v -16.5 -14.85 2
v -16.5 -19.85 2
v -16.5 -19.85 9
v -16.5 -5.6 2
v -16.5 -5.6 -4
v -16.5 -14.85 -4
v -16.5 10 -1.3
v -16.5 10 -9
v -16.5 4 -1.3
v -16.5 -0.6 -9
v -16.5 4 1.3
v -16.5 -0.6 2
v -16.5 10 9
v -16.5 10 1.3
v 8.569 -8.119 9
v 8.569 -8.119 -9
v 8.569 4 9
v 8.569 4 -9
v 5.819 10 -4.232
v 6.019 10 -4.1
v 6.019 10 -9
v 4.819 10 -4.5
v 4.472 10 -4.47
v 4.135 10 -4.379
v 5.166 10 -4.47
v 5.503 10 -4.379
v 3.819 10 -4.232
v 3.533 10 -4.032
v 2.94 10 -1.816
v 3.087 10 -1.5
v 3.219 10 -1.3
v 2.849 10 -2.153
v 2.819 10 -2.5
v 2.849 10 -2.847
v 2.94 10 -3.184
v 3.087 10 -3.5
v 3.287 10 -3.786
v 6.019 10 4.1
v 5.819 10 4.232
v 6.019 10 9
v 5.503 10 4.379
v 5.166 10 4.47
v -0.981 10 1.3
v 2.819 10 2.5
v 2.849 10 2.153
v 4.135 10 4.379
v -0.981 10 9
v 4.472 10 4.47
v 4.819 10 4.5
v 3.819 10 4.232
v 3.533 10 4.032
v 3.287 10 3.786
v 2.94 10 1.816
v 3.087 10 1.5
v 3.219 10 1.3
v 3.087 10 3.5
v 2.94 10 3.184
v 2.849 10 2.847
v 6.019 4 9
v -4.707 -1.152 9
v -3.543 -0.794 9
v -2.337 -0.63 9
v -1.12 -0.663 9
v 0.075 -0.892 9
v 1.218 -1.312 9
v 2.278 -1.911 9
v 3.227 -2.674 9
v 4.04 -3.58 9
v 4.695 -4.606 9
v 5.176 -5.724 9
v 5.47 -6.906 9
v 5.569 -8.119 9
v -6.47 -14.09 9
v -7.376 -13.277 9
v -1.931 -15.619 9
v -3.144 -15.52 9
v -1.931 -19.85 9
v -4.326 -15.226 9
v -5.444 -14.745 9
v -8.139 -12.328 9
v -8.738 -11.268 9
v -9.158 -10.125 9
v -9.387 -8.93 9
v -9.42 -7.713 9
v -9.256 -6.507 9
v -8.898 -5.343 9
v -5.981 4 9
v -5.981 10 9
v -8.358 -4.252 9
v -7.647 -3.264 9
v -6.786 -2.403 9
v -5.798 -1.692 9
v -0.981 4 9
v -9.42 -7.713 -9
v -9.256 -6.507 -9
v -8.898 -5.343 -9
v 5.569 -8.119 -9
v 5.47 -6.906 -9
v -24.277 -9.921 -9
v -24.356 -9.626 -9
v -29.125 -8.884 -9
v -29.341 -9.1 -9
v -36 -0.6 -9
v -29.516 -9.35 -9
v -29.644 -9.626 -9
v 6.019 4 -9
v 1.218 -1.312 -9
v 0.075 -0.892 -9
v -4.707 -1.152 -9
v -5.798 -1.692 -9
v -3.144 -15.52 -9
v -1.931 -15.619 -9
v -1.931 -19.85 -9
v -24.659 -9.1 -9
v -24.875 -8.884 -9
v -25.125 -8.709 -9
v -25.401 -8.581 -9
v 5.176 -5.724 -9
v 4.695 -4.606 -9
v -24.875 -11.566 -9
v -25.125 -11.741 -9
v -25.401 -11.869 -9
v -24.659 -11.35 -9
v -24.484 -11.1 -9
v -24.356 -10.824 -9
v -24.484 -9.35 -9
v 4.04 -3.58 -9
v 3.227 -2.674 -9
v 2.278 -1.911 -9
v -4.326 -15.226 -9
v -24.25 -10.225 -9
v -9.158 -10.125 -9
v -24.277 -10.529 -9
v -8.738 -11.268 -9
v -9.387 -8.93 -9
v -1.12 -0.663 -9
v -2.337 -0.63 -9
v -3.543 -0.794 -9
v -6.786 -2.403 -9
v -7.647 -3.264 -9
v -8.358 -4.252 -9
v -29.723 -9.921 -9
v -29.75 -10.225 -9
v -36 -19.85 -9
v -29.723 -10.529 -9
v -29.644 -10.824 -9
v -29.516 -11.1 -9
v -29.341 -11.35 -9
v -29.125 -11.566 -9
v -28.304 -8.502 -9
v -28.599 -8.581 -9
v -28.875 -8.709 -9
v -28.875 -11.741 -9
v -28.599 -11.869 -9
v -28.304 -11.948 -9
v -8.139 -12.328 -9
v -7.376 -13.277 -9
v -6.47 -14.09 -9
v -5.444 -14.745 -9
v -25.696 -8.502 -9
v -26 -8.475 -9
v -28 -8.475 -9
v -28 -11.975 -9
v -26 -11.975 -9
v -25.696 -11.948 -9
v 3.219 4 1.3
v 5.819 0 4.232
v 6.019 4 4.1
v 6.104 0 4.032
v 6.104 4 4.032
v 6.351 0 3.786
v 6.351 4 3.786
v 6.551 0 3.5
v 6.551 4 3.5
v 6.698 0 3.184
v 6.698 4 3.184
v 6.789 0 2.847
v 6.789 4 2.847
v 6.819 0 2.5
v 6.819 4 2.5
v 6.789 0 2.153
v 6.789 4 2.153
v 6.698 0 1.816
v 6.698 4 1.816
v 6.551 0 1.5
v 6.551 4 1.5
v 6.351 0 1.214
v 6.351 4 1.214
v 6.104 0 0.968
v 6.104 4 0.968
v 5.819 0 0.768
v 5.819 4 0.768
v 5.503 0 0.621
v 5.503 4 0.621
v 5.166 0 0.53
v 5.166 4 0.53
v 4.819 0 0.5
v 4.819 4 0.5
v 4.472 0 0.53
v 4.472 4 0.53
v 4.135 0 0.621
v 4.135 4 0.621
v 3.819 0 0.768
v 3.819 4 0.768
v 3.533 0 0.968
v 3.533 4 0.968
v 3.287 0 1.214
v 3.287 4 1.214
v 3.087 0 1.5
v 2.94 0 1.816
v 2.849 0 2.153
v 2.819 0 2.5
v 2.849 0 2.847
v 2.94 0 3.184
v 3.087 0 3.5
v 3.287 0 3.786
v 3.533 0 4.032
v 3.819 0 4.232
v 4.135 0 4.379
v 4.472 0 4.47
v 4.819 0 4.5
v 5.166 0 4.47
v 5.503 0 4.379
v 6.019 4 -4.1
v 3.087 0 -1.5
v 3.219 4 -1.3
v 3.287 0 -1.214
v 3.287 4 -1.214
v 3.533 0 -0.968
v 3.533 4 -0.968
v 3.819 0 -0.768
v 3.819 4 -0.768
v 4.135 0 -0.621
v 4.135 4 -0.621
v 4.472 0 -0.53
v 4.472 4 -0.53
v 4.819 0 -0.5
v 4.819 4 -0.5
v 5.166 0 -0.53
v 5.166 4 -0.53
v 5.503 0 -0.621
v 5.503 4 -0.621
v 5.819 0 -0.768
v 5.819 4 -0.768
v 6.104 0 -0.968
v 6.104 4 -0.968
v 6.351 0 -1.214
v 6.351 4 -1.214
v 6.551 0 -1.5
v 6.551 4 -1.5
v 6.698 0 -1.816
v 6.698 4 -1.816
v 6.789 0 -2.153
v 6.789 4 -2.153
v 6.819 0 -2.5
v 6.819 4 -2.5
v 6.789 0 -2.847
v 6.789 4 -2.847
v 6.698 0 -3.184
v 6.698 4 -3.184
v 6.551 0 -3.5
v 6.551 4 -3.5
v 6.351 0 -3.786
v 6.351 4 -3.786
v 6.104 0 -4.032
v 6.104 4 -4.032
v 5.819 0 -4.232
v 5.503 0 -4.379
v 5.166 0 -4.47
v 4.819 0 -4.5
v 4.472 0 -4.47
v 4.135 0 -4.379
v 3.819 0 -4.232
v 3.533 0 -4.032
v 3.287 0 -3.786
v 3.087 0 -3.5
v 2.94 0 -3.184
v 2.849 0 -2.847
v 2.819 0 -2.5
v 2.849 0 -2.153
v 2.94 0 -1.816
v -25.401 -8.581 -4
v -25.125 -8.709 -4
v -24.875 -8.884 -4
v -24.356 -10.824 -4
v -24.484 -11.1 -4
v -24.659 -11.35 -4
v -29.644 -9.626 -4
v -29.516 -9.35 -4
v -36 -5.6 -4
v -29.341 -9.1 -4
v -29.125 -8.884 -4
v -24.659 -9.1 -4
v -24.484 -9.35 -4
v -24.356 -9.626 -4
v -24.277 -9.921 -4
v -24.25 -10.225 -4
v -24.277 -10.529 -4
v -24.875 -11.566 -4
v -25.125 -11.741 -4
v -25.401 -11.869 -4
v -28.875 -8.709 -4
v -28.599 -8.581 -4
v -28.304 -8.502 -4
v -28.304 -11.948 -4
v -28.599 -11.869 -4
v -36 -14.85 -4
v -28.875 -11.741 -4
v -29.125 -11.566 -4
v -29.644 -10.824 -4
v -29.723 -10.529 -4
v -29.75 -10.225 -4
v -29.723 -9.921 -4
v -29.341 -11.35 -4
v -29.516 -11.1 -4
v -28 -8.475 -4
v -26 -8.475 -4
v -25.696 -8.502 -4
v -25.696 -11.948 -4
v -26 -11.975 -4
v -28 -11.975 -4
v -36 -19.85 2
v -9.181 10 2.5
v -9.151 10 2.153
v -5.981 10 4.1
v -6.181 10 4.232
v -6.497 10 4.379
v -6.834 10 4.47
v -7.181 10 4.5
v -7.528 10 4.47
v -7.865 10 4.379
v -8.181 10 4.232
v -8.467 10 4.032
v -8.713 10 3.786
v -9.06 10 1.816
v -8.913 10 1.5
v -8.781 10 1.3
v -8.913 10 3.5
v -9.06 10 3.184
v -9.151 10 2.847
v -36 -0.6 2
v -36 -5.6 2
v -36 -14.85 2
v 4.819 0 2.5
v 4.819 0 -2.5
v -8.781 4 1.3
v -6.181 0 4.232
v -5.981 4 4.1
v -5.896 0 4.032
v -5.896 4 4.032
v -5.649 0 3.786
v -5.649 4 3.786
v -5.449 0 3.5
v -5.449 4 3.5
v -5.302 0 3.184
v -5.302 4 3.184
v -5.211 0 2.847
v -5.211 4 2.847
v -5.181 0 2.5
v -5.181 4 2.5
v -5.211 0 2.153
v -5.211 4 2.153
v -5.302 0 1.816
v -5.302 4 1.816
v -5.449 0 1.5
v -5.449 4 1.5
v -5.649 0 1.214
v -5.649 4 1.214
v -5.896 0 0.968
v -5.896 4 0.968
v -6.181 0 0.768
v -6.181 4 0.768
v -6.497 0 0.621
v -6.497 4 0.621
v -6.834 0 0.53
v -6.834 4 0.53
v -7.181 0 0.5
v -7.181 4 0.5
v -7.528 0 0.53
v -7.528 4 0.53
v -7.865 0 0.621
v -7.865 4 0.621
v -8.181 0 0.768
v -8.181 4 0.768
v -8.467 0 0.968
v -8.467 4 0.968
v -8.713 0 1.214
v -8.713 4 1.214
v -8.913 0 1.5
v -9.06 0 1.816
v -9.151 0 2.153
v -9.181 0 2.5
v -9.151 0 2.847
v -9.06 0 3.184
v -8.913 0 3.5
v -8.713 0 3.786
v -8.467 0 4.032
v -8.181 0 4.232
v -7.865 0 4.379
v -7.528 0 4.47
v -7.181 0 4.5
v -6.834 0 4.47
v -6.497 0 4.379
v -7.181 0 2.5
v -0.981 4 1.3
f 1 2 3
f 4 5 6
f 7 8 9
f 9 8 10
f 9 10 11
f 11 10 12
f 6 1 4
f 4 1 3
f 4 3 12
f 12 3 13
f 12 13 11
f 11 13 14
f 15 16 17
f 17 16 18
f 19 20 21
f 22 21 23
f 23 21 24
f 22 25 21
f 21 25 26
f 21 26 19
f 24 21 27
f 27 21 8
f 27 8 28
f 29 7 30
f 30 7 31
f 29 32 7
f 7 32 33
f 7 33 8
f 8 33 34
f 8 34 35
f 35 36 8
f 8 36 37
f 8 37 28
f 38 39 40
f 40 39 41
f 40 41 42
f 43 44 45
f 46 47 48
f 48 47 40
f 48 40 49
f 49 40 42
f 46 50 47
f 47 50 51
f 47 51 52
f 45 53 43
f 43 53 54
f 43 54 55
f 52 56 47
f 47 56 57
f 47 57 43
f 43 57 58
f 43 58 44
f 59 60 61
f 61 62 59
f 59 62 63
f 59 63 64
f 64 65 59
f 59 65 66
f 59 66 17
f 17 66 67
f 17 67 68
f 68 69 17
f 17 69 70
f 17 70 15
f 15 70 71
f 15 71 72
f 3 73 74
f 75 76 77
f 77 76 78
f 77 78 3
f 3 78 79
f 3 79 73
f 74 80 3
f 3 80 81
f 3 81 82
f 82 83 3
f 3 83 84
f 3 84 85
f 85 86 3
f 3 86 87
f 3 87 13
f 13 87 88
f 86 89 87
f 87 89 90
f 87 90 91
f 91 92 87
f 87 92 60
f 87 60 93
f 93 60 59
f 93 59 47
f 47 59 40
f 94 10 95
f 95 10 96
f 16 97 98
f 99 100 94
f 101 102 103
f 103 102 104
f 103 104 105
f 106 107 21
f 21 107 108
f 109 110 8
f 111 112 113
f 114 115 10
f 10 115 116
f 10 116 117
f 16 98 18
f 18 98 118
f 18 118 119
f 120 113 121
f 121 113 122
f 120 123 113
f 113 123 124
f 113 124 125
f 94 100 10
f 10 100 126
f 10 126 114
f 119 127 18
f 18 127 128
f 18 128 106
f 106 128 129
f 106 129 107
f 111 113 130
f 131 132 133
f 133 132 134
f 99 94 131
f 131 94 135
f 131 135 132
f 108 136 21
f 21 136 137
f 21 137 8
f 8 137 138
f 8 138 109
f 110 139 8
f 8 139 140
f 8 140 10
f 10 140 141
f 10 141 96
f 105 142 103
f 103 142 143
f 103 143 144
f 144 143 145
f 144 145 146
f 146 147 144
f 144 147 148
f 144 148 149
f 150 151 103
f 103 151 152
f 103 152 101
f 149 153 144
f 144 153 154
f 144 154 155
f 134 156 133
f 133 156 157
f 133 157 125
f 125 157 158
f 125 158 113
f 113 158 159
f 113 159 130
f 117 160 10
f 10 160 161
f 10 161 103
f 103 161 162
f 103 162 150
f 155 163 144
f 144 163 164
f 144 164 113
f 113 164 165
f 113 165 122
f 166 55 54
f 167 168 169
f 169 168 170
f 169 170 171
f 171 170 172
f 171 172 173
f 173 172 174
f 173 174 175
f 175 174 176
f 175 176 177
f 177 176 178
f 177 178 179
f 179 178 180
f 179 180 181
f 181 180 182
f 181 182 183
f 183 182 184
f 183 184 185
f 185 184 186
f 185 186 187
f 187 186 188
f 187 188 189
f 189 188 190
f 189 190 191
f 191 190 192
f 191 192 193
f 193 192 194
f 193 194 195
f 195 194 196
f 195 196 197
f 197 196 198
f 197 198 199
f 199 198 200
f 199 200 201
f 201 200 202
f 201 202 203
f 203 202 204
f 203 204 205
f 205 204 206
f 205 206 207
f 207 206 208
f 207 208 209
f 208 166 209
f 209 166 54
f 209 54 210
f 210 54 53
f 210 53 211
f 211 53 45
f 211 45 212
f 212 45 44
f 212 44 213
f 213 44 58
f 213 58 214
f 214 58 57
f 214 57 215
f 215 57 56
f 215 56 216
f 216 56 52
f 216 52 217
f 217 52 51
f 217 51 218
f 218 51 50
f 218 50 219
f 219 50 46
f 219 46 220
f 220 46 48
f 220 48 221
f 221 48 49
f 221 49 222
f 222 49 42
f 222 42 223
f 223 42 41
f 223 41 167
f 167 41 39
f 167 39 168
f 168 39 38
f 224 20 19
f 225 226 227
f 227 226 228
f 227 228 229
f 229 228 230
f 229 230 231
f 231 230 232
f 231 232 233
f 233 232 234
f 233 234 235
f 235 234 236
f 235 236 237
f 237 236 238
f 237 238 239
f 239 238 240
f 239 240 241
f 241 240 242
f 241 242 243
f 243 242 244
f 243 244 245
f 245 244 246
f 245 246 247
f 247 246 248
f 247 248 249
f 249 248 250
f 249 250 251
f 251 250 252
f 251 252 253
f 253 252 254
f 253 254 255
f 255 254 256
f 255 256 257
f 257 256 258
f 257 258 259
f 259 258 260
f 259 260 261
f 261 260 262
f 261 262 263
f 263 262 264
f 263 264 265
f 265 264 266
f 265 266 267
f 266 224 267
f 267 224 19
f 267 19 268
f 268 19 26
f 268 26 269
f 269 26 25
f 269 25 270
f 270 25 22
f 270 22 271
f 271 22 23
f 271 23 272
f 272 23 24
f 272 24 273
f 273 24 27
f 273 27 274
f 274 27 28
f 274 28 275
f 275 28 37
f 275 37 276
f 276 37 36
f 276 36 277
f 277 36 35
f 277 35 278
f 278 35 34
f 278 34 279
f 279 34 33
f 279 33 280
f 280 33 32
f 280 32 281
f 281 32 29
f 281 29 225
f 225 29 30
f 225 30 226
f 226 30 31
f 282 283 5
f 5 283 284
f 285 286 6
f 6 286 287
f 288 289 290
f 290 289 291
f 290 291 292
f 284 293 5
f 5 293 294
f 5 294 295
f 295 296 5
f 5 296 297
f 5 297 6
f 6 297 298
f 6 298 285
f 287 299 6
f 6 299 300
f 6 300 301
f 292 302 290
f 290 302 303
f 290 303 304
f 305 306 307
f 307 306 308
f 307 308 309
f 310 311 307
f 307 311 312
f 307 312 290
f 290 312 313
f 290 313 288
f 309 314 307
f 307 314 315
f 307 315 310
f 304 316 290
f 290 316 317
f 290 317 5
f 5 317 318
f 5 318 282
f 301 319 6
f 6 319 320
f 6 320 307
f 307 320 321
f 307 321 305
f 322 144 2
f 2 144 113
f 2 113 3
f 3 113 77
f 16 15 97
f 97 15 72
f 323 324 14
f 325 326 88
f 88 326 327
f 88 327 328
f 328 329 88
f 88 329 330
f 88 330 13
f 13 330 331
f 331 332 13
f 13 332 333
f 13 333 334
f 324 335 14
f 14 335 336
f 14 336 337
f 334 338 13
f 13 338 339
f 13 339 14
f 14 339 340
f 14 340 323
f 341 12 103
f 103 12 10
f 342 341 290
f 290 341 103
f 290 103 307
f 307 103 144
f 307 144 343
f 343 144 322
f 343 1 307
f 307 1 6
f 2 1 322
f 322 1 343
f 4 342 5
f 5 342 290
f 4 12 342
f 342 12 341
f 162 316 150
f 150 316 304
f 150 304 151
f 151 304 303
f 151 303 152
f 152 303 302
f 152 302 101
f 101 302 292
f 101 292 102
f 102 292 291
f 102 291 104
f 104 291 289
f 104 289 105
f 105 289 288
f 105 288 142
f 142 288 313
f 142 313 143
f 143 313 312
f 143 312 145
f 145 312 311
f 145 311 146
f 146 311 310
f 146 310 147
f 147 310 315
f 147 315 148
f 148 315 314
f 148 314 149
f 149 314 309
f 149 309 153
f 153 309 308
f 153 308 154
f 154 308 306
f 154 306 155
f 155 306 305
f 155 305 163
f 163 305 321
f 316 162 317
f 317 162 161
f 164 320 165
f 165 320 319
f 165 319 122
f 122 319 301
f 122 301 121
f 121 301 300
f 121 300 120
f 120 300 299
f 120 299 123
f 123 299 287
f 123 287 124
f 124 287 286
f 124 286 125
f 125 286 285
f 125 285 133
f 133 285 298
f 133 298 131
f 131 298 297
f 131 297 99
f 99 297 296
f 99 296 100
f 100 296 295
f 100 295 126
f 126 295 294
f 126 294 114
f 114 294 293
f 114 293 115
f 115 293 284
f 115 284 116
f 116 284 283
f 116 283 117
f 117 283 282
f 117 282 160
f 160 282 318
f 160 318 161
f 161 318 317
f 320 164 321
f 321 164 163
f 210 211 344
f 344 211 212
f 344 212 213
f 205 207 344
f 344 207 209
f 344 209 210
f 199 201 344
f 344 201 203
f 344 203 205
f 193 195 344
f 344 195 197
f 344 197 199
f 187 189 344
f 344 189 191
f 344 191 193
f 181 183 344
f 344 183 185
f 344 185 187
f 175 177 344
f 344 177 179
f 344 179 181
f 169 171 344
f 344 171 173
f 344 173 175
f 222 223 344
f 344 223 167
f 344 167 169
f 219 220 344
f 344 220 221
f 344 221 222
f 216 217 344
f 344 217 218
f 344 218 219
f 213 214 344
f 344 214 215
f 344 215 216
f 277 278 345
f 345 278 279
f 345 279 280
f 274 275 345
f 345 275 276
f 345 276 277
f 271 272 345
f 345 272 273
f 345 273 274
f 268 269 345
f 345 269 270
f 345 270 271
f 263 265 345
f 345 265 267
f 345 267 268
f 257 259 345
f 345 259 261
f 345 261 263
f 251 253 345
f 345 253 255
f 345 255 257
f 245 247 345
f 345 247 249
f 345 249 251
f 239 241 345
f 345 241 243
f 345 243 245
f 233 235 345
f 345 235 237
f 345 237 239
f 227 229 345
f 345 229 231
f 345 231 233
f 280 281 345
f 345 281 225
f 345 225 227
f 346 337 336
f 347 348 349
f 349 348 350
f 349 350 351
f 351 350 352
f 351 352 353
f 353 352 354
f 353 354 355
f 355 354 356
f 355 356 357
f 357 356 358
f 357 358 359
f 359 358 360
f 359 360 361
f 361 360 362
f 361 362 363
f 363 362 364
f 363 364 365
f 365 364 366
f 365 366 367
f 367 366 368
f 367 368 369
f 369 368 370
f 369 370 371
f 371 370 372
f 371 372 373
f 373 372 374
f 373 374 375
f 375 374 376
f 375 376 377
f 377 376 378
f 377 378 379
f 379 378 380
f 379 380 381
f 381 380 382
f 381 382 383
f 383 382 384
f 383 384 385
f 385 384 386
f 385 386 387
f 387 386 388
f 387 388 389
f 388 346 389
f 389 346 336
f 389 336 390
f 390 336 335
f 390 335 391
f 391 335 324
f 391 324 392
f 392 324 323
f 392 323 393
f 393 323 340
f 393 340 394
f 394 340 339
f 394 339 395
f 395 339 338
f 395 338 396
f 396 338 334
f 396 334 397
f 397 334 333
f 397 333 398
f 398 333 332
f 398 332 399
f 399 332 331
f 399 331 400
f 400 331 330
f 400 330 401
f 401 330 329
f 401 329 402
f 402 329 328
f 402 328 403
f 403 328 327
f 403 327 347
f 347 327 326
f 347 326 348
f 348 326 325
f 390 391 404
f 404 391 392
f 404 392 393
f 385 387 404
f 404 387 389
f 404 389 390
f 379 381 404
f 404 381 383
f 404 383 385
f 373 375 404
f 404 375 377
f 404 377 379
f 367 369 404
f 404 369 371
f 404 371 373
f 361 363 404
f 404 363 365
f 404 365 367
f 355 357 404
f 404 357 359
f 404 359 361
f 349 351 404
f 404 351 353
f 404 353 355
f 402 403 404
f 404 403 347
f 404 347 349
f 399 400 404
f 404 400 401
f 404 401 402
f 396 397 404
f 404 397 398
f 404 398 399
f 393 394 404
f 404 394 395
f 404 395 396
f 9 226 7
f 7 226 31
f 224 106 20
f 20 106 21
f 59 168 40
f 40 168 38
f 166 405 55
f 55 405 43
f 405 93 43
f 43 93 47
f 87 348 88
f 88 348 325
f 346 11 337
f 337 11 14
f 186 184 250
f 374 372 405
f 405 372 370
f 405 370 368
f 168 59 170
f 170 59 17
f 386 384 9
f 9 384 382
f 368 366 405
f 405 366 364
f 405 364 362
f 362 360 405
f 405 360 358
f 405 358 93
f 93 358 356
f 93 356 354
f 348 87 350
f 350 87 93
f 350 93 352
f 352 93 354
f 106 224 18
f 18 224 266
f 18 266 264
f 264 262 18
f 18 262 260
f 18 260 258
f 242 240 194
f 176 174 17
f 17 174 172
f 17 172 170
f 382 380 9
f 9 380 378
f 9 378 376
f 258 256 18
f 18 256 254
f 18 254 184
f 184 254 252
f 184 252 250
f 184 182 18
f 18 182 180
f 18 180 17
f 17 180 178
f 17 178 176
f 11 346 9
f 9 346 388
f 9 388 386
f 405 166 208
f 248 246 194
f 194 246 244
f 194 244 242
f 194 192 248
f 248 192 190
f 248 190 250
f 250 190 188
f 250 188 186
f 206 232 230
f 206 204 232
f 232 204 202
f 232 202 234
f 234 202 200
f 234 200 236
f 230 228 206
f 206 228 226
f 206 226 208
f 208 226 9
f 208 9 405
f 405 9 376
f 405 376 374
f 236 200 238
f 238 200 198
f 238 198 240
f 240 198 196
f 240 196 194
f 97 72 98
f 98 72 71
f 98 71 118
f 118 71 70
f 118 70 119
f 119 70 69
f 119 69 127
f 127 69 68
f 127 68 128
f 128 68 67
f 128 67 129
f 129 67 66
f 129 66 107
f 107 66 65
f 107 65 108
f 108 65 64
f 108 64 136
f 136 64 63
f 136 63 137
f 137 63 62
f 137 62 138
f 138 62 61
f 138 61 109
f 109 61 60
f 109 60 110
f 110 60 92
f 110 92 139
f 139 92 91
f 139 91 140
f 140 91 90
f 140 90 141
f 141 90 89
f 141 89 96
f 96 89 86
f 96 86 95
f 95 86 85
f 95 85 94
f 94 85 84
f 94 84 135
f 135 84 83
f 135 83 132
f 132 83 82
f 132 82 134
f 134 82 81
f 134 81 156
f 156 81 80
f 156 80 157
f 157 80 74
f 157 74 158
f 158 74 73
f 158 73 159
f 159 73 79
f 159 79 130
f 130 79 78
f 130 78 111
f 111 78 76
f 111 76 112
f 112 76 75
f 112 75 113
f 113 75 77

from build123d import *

# Parameters (mm, degrees)
SKETCH1_W               = 8.56892
SKETCH1_H               = 8.11892
BOSS_EXTRUDE1_DEPTH     = 9
SKETCH4_W               = 19.5
SKETCH4_H               = 19.25
BOSS_EXTRUDE2_DEPTH     = 5
SKETCH5_W               = 19.5
SKETCH5_H               = 5
BOSS_EXTRUDE3_DEPTH     = 6
CUT_EXTRUDE1_DEPTH      = 6
SKETCH7_R               = 2
CUT_EXTRUDE2_DEPTH      = 10
CUT_EXTRUDE3_DEPTH      = 6
SKETCH11_R              = 7.5
SKETCH11_W              = 10.5
SKETCH11_H              = 11.73108
CUT_EXTRUDE5_DEPTH      = 10
CUT_EXTRUDE5_DEPTH_BACK = 10


with BuildPart() as part:
    # Sketch1 → Boss-Extrude1 (new body, symmetric)
    with BuildSketch(Plane.XY):
        Polygon((-16.5, -19.85), (0, -19.85), (0, 0), (8.56892, 0), (8.56892, 10), (-16.5, 10), align=None)
        with Locations((4.28446, -4.05946)):
            Rectangle(SKETCH1_W, SKETCH1_H)
    extrude(amount=BOSS_EXTRUDE1_DEPTH, both=True)

    # Sketch4 → Boss-Extrude2 (add)
    with BuildSketch(Plane(origin=(0, 0, -9), x_dir=(-1, 0, 0), z_dir=(0, 0, -1))):
        with Locations((26.25, -10.225)):
            Rectangle(SKETCH4_W, SKETCH4_H)
    extrude(amount=-BOSS_EXTRUDE2_DEPTH)

    # Sketch5 → Boss-Extrude3 (add)
    with BuildSketch(Plane.XY.offset(-4)):
        with Locations((-26.25, -17.35)):
            Rectangle(SKETCH5_W, SKETCH5_H)
        with Locations((-26.25, -3.1)):
            Rectangle(SKETCH5_W, SKETCH5_H)
    extrude(amount=BOSS_EXTRUDE3_DEPTH)

    # Sketch6 → Cut-Extrude1 (cut)
    with BuildSketch(Plane.XY.offset(-4)):
        with BuildLine():
            Line((-28, -8.475), (-26, -8.475))
            ThreePointArc((-26, -8.475), (-24.25, -10.225), (-26, -11.975))
            Line((-26, -11.975), (-28, -11.975))
            ThreePointArc((-28, -11.975), (-29.75, -10.225), (-28, -8.475))
        make_face()
    extrude(amount=-CUT_EXTRUDE1_DEPTH, mode=Mode.SUBTRACT)

    # Sketch7 → Cut-Extrude2 (cut)
    with BuildSketch(Plane(origin=(0, 10, 0), x_dir=(1, 0, 0), z_dir=(0, 1, 0))):
        with Locations((4.81892, 2.5)):
            Circle(SKETCH7_R)
        with Locations((4.81892, -2.5)):
            Circle(SKETCH7_R)
        with Locations((-7.18108, -2.5)):
            Circle(SKETCH7_R)
    extrude(amount=-CUT_EXTRUDE2_DEPTH, mode=Mode.SUBTRACT)

    # Sketch8 → Cut-Extrude3 (cut)
    with BuildSketch(Plane(origin=(0, 10, 0), x_dir=(1, 0, 0), z_dir=(0, 1, 0))):
        Polygon((6.01892, 1.3), (6.01892, 9), (8.56892, 9), (8.56892, -9), (6.01892, -9), (6.01892, -1.3), (-0.98108, -1.3), (-0.98108, -9), (-5.98108, -9), (-5.98108, -1.3), (-16.5, -1.3), (-16.5, 1.3), align=None)
    extrude(amount=-CUT_EXTRUDE3_DEPTH, mode=Mode.SUBTRACT)

    # Sketch11 → Cut-Extrude5 (cut, two sides)
    with BuildSketch(Plane.XY) as cut_extrude5_sk:
        with Locations((-1.93108, -8.11892)):
            Circle(SKETCH11_R)
        with Locations((3.31892, -13.98446)):
            Rectangle(SKETCH11_W, SKETCH11_H)
    extrude(amount=CUT_EXTRUDE5_DEPTH, mode=Mode.SUBTRACT)
    extrude(cut_extrude5_sk.sketch, amount=-CUT_EXTRUDE5_DEPTH_BACK, mode=Mode.SUBTRACT)


solid = part.part
